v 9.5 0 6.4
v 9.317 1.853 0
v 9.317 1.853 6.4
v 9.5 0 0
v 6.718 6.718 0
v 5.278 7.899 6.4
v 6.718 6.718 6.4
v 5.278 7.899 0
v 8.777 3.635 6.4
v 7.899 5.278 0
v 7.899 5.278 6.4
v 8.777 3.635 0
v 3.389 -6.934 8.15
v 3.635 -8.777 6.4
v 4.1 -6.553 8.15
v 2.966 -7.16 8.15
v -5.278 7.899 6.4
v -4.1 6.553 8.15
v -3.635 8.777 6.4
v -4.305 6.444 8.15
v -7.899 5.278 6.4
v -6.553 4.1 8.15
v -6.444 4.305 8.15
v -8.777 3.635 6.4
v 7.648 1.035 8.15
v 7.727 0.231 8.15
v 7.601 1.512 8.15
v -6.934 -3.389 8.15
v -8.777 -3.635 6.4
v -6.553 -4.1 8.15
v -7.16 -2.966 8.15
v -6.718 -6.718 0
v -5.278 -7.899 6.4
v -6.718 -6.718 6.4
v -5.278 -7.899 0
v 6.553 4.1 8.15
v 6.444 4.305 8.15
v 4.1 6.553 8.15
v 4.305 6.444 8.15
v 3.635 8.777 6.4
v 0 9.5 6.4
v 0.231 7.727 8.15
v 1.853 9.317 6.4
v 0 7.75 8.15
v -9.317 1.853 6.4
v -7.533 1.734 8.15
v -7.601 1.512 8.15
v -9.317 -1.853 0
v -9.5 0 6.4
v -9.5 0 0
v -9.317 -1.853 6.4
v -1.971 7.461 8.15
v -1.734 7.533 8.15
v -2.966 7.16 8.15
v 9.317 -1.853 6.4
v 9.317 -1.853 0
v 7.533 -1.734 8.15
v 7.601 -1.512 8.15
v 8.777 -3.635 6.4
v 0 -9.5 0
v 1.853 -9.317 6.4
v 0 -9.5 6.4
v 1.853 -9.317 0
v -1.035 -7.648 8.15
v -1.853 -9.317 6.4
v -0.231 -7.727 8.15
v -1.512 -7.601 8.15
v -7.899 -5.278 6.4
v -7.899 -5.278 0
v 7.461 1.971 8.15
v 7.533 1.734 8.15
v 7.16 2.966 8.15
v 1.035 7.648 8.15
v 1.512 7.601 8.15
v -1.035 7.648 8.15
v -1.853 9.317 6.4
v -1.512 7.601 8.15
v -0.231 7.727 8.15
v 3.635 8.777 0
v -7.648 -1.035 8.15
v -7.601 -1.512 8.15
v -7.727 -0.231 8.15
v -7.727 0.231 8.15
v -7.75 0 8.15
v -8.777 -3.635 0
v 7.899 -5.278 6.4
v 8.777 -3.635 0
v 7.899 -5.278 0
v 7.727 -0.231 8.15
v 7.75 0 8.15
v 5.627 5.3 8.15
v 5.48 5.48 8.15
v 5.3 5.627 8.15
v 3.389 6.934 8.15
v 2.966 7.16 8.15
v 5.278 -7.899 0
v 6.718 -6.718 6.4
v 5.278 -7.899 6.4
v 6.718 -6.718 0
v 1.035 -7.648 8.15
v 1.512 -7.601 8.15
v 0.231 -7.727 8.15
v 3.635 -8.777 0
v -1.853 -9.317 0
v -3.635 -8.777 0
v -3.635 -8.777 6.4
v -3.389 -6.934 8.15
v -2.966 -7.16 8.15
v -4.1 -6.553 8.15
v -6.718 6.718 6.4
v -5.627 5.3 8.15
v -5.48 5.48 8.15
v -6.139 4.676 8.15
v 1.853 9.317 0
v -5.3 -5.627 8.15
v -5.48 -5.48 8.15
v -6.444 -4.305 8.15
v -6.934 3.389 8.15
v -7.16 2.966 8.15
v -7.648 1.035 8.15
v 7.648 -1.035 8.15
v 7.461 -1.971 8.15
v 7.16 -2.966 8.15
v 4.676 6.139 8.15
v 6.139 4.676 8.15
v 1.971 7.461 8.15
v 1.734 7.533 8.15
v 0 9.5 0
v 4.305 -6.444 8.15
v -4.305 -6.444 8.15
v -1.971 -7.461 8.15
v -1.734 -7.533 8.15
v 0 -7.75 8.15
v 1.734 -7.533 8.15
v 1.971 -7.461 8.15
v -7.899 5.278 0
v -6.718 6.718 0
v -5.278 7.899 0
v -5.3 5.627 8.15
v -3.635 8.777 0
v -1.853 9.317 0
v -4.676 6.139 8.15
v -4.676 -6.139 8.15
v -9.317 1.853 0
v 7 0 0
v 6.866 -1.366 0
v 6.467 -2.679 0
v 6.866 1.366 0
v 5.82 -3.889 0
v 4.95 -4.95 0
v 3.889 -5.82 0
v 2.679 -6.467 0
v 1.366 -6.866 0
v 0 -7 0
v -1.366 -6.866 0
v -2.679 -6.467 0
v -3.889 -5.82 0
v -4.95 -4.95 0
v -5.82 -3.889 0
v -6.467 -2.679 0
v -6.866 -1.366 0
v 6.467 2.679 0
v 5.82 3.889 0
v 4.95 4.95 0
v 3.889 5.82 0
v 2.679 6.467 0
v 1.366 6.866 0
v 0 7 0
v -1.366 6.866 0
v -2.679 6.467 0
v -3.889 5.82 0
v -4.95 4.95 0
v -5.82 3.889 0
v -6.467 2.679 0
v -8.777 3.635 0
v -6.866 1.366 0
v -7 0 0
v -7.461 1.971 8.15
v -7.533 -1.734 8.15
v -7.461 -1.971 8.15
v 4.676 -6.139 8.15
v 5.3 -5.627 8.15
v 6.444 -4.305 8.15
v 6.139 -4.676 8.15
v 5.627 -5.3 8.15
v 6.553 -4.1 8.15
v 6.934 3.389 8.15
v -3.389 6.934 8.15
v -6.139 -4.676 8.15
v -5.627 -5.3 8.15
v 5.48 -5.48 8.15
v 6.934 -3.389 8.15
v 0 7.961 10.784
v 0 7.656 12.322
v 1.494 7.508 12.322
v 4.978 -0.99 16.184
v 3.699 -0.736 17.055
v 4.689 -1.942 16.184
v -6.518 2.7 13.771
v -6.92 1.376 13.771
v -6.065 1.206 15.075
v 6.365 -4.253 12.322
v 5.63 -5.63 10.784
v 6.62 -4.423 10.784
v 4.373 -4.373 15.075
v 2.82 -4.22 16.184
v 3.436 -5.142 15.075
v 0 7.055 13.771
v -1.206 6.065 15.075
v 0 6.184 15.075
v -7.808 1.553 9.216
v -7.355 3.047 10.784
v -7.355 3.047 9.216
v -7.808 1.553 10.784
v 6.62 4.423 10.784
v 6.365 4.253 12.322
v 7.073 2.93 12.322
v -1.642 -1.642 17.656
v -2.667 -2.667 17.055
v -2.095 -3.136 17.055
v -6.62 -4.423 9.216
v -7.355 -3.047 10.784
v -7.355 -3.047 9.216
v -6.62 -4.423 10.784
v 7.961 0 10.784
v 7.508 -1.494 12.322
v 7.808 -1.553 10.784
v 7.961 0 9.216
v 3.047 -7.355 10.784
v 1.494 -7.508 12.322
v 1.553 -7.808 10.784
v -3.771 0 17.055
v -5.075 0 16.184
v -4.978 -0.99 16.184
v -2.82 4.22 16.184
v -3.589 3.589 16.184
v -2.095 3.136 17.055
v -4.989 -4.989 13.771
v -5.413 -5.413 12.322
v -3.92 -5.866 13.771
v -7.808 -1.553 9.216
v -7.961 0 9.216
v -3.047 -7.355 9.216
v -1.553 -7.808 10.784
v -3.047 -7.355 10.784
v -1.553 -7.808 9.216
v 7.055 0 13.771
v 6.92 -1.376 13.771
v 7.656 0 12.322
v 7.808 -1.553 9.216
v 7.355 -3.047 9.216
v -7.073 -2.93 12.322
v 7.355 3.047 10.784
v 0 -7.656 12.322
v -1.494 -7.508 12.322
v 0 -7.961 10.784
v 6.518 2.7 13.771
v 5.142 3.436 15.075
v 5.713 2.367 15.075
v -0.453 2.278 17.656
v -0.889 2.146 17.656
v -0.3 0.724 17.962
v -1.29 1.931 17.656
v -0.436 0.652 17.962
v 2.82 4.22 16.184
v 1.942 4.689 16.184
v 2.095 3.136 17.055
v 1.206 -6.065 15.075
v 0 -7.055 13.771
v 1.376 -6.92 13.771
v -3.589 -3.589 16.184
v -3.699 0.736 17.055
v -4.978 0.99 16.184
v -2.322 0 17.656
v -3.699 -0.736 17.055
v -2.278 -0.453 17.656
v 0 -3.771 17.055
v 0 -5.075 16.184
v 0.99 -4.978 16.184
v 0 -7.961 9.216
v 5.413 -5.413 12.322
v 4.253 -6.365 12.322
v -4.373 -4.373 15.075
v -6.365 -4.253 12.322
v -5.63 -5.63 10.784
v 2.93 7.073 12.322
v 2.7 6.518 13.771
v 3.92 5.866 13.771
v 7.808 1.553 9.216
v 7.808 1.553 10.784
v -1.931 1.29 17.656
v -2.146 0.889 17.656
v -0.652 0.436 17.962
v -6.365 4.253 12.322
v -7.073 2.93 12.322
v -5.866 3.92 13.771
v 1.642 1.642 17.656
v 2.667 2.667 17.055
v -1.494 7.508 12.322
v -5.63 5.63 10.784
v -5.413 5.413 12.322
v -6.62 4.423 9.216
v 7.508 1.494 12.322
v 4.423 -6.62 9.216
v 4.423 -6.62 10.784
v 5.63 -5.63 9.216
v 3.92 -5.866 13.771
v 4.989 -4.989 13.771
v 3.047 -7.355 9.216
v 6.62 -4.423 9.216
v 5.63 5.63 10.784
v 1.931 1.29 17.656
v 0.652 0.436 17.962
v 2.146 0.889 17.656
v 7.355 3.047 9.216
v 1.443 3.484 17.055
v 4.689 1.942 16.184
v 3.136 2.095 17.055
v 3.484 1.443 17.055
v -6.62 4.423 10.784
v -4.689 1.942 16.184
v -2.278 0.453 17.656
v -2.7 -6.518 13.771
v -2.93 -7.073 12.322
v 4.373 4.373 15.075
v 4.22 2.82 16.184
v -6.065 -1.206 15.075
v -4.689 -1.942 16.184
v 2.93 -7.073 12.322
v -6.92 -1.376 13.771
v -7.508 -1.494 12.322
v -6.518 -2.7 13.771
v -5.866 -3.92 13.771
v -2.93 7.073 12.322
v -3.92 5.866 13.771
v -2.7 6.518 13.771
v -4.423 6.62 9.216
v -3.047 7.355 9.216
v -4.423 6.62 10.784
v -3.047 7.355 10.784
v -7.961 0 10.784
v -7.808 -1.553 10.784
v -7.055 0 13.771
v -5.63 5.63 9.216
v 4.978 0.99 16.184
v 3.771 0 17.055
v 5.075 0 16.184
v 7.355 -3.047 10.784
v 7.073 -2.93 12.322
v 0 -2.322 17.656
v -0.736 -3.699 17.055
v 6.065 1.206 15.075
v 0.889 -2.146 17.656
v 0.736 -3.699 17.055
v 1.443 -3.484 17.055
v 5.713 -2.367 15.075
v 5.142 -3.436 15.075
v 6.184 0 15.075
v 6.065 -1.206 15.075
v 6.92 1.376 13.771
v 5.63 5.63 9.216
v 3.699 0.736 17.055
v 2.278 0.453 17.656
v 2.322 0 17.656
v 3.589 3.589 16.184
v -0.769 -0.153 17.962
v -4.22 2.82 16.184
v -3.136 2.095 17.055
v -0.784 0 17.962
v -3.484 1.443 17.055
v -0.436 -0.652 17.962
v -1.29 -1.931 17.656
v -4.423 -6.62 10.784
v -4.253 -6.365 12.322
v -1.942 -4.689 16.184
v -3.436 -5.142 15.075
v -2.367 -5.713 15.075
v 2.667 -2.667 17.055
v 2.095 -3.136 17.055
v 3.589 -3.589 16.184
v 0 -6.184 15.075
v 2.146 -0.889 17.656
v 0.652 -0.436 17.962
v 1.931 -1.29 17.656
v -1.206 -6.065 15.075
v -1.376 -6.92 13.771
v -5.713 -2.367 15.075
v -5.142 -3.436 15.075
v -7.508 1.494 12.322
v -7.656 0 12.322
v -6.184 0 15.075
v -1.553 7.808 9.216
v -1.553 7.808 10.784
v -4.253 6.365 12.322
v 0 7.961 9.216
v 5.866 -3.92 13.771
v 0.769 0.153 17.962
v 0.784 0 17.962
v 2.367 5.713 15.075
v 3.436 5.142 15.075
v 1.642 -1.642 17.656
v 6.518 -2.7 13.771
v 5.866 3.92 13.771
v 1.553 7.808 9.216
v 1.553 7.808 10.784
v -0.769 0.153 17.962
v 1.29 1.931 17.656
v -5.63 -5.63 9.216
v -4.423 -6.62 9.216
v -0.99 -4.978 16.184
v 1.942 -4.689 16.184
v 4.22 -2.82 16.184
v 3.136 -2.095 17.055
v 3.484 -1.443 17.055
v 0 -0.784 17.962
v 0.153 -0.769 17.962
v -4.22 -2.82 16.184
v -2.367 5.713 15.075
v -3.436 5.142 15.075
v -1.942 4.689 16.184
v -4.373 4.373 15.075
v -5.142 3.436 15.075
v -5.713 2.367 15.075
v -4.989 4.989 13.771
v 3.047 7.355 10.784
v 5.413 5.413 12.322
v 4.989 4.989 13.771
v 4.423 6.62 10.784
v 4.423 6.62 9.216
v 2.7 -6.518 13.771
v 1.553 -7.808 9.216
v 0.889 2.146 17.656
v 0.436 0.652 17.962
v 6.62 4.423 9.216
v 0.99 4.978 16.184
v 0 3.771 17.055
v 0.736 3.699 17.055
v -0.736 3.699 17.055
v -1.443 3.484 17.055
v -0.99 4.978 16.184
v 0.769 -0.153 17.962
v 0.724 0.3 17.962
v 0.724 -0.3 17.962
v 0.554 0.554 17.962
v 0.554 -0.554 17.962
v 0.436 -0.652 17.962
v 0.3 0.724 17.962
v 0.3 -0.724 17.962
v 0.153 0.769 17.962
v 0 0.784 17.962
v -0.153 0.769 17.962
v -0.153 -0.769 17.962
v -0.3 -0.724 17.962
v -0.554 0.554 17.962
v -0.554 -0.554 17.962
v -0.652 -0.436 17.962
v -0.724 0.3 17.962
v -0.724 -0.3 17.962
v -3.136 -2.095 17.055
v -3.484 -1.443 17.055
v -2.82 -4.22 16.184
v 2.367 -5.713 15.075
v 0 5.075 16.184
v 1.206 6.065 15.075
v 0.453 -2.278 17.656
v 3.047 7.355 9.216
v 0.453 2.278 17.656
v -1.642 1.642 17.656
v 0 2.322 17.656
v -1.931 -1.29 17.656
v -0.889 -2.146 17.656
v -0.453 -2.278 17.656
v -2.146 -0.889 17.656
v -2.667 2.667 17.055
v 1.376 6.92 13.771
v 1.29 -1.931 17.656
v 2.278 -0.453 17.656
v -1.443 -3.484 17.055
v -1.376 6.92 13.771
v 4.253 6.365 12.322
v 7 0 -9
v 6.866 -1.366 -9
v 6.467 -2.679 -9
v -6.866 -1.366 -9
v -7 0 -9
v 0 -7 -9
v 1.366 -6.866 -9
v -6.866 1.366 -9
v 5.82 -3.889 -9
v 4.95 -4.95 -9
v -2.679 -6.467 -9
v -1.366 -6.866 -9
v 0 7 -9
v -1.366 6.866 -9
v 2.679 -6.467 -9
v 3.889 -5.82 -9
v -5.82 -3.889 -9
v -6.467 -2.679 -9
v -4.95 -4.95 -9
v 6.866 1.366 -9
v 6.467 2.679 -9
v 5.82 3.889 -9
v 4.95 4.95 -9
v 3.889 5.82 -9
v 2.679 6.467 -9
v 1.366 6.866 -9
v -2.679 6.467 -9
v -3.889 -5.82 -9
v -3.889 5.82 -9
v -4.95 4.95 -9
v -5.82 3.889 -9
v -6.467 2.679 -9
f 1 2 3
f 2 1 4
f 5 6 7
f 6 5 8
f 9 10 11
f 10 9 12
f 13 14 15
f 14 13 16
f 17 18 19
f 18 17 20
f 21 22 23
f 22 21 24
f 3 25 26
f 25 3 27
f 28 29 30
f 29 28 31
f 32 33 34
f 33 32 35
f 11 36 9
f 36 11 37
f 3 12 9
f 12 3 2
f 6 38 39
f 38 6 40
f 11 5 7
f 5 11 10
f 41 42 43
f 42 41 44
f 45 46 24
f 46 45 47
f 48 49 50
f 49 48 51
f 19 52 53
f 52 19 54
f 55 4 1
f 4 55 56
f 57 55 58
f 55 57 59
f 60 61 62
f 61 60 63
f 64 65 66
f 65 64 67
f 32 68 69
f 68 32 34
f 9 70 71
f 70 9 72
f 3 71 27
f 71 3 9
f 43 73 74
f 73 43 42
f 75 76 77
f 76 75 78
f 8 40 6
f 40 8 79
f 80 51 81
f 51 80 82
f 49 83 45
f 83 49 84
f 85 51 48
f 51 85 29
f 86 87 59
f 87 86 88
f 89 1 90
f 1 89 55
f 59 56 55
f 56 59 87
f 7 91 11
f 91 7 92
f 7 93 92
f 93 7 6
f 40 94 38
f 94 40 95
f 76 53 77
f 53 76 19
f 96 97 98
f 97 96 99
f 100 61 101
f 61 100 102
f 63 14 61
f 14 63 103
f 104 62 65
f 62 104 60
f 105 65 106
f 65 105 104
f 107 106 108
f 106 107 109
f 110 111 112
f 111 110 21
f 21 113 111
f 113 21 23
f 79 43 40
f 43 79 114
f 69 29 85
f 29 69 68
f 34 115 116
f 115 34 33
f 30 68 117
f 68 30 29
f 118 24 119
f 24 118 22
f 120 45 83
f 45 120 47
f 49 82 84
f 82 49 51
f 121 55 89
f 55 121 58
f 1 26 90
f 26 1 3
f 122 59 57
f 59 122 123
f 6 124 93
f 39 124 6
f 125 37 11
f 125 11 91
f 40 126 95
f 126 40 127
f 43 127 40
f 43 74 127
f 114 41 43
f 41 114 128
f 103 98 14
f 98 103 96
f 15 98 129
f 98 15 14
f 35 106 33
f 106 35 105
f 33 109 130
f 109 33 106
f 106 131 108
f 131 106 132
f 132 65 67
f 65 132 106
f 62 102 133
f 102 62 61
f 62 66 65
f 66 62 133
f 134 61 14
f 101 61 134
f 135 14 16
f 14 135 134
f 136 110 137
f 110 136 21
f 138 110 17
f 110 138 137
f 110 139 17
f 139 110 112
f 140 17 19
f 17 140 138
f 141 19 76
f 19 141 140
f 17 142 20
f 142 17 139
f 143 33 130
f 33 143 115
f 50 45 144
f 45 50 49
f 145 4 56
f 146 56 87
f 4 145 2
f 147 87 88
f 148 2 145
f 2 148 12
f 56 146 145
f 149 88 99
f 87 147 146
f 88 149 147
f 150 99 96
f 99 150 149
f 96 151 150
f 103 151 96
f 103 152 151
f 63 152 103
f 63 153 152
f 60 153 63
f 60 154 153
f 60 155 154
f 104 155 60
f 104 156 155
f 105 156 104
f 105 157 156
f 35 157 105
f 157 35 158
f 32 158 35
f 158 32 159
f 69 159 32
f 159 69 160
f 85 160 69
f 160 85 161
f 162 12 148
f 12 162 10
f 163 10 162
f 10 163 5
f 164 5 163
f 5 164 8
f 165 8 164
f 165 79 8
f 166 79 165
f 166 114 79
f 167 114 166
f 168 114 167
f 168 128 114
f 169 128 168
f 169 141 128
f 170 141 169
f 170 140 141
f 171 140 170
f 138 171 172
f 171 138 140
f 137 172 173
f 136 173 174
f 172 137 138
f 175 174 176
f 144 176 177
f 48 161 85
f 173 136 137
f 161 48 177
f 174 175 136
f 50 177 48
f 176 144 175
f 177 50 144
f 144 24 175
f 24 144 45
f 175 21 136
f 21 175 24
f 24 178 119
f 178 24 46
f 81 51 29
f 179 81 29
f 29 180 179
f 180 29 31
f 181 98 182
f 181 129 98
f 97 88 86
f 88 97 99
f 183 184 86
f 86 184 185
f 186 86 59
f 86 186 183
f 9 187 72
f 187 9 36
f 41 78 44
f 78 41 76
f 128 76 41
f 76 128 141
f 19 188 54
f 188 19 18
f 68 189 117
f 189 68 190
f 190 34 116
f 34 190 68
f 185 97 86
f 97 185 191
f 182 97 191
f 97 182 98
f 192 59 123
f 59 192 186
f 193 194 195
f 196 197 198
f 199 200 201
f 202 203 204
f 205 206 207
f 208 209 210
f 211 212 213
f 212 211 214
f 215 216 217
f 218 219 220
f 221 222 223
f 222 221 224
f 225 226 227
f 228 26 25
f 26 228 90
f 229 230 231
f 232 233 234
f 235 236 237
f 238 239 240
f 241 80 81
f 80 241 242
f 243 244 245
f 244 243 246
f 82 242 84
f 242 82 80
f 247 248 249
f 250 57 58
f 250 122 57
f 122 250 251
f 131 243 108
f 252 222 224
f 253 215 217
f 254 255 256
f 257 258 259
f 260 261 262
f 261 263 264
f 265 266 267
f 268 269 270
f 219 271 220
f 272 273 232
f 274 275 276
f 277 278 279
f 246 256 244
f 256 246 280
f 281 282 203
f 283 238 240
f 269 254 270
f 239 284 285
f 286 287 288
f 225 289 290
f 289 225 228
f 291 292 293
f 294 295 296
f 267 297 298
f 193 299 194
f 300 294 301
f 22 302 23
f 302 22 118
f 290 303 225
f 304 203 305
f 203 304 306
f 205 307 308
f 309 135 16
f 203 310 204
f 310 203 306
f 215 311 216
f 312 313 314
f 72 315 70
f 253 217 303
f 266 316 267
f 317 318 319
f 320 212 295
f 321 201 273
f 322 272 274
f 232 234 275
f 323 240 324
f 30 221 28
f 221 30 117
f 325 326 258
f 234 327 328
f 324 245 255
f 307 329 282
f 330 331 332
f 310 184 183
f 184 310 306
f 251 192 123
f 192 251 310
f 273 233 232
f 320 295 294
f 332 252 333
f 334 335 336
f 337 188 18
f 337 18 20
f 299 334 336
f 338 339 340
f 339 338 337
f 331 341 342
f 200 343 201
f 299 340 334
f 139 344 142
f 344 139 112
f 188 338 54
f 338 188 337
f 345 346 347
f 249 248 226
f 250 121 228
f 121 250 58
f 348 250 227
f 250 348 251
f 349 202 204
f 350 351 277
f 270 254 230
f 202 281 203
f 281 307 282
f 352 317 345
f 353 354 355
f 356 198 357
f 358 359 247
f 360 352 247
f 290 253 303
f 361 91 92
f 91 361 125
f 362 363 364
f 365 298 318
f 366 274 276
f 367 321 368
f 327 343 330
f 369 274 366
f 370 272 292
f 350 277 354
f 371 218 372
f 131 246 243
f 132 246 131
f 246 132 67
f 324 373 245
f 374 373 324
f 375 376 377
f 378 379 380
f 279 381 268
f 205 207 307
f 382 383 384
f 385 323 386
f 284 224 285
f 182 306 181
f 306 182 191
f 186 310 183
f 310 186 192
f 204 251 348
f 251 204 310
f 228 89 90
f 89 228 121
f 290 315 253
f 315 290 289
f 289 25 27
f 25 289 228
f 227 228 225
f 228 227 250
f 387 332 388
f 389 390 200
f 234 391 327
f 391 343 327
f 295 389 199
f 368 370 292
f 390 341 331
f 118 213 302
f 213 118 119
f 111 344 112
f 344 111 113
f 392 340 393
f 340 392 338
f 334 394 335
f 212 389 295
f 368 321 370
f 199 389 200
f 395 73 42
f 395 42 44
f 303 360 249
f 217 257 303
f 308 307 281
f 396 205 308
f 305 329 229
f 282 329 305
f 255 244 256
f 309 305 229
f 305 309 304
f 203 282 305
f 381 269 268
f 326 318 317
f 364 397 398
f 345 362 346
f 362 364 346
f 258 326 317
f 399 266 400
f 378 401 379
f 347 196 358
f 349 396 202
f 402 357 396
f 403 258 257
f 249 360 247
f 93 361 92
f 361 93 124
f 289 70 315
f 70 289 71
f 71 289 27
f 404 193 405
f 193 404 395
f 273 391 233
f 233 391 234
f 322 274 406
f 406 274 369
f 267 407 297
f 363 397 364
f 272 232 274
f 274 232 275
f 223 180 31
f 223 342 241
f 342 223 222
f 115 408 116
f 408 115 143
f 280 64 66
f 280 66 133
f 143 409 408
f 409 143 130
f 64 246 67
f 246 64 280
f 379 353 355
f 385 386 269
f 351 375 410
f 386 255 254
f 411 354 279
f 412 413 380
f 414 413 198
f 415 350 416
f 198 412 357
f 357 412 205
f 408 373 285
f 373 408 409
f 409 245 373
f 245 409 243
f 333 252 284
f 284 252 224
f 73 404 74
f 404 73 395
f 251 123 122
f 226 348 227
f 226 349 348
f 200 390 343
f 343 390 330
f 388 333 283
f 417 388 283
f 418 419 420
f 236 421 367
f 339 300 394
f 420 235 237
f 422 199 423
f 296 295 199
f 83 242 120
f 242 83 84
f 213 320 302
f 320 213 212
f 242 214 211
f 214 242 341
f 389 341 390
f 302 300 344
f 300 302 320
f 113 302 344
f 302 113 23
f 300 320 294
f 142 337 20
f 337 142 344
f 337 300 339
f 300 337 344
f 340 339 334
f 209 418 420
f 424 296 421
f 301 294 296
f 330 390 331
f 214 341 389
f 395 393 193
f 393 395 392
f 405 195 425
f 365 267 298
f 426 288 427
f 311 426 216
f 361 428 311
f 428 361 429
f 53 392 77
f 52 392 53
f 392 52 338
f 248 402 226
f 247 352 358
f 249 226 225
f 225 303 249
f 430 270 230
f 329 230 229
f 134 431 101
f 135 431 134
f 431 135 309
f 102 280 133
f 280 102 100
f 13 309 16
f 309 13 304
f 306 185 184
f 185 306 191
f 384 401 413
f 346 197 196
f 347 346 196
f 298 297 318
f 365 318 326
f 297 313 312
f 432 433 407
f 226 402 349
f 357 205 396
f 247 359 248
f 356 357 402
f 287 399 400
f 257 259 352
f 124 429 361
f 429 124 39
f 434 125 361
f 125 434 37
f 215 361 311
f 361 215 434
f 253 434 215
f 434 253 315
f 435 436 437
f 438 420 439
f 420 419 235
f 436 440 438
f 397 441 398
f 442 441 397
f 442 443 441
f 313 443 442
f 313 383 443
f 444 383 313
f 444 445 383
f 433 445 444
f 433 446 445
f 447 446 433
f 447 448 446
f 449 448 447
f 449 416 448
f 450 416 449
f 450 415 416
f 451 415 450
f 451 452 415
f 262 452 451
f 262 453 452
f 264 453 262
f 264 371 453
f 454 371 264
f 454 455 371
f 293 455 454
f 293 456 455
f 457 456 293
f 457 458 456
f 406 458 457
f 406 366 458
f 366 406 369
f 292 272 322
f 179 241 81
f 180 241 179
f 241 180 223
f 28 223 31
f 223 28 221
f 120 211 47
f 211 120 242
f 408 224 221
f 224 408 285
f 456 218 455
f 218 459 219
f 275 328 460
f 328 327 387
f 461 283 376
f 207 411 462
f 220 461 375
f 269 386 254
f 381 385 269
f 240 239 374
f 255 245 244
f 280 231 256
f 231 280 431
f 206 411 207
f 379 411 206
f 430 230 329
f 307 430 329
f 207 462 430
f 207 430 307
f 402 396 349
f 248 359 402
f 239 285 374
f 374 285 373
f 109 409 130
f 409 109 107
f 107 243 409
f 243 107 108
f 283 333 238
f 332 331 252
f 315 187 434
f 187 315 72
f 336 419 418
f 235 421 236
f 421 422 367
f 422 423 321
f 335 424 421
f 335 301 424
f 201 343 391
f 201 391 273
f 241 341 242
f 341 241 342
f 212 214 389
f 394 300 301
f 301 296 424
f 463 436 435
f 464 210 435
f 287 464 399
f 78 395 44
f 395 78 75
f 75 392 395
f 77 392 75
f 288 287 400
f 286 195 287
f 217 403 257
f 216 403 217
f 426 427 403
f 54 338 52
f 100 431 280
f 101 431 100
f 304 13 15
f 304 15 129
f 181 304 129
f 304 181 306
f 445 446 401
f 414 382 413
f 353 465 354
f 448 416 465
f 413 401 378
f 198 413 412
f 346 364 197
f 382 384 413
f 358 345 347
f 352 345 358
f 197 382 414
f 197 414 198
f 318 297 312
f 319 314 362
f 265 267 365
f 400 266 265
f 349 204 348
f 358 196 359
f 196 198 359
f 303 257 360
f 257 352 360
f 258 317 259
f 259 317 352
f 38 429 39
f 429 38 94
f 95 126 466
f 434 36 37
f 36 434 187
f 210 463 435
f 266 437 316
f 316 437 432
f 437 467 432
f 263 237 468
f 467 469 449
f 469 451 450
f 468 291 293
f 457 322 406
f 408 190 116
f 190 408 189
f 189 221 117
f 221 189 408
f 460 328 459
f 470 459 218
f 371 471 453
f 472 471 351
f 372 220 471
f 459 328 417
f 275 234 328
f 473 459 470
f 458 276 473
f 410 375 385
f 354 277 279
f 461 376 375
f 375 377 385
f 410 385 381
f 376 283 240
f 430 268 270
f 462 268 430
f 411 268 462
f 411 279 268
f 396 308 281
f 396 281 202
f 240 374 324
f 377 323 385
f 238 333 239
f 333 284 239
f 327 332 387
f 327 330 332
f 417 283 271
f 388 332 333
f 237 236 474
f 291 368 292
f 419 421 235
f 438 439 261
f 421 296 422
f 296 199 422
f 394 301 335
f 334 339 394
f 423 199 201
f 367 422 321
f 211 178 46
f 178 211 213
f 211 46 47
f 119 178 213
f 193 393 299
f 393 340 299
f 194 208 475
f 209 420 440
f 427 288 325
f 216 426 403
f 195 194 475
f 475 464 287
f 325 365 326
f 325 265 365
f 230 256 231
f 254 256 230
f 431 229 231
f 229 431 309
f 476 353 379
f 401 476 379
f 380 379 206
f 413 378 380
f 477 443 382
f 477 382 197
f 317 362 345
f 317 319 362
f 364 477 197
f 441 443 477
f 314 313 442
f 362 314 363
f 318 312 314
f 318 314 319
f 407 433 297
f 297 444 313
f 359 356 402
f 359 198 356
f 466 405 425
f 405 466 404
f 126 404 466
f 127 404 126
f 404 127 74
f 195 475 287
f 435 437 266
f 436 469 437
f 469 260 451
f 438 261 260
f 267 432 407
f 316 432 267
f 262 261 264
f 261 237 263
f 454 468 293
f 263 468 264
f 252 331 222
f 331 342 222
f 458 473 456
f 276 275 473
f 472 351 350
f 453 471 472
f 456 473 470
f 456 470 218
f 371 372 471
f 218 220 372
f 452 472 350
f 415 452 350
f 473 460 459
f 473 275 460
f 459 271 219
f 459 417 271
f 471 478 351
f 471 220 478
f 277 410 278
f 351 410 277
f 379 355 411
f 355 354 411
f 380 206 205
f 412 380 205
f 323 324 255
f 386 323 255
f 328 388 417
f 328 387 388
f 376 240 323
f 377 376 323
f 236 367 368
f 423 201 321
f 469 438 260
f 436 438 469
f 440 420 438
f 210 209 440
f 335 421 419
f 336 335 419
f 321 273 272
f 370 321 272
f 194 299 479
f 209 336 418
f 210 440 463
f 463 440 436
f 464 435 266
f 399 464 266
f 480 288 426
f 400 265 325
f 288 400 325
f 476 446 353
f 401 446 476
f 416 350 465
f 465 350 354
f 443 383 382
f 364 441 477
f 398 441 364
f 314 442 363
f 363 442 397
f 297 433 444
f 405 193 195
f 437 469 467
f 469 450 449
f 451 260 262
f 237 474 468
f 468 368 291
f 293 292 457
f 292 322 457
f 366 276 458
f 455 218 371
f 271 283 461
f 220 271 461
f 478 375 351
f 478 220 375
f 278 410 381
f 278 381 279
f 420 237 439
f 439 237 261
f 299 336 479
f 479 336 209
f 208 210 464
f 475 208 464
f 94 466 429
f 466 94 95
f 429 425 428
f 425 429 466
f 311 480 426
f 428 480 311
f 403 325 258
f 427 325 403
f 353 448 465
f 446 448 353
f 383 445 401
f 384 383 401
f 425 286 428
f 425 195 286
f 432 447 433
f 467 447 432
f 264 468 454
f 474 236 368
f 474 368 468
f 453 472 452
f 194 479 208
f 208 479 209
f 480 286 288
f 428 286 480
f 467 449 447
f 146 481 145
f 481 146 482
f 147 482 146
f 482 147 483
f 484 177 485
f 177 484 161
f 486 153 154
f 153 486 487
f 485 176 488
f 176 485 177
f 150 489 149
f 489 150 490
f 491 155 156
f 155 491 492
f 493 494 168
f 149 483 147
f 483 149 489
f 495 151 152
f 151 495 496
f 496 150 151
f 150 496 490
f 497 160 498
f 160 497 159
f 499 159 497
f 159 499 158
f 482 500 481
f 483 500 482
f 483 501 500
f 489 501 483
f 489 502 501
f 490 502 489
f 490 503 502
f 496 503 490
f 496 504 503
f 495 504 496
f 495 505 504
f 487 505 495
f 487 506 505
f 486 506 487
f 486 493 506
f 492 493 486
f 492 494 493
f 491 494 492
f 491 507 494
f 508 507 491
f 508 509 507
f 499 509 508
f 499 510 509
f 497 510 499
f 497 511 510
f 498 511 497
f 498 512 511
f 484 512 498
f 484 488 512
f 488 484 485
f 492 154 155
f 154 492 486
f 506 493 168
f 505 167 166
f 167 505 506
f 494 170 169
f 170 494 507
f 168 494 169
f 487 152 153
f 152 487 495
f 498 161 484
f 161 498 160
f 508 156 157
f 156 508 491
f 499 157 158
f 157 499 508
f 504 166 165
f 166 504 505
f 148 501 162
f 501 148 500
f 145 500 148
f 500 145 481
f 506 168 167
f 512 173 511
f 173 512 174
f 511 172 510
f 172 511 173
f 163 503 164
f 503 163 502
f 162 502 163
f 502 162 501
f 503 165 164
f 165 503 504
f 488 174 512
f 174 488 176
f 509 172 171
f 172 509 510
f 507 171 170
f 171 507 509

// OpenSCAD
// A CNG-Methane sensor MQ-4 ordered from https://www.sparkfun.com/products/9404
// Part of Vör, http://vor.space by Futurice
// ©Futurice Oy, paul.houghton@futurice.com, CC-attribution-sharealike license, http://creativecommons.org/licenses/by-sa/4.0/

$fn = 32;

pin_length = 8;

// Uncomment one or the other depending on the use case shape desired
//methane_sensor();
methane_sensor_space();

module center() {
    hull() {
        cylinder(h = 6.4, r = 19/2);
        cylinder(h = 8.4, r = 15/2);
    }
}

module top() {
    translate([0, 0, 18 - 16/2])
        sphere(r=16/2);
}

module pin(theta = 0) {
    color("black") rotate([180, 0, theta]) {
        translate([6, 0, 0])
            cylinder(r=.3, h=pin_length);
    }
}

module pin_space(radius = 7) {
    rotate([180, 0, 0]) {
        cylinder(r=radius, h=pin_length + 1);
    }
}

module methane_sensor() {
    color("grey") center();
    color("violet") top();
    pin(theta = 0);
    pin(theta = 45);
    pin(theta = -45);
    pin(theta = 180);
    pin(theta = 180 + 45);
    pin(theta = 180 - 45);
}

module methane_sensor_space() {
    color("grey") center();
    color("violet") top();
    color("black") pin_space();
}
